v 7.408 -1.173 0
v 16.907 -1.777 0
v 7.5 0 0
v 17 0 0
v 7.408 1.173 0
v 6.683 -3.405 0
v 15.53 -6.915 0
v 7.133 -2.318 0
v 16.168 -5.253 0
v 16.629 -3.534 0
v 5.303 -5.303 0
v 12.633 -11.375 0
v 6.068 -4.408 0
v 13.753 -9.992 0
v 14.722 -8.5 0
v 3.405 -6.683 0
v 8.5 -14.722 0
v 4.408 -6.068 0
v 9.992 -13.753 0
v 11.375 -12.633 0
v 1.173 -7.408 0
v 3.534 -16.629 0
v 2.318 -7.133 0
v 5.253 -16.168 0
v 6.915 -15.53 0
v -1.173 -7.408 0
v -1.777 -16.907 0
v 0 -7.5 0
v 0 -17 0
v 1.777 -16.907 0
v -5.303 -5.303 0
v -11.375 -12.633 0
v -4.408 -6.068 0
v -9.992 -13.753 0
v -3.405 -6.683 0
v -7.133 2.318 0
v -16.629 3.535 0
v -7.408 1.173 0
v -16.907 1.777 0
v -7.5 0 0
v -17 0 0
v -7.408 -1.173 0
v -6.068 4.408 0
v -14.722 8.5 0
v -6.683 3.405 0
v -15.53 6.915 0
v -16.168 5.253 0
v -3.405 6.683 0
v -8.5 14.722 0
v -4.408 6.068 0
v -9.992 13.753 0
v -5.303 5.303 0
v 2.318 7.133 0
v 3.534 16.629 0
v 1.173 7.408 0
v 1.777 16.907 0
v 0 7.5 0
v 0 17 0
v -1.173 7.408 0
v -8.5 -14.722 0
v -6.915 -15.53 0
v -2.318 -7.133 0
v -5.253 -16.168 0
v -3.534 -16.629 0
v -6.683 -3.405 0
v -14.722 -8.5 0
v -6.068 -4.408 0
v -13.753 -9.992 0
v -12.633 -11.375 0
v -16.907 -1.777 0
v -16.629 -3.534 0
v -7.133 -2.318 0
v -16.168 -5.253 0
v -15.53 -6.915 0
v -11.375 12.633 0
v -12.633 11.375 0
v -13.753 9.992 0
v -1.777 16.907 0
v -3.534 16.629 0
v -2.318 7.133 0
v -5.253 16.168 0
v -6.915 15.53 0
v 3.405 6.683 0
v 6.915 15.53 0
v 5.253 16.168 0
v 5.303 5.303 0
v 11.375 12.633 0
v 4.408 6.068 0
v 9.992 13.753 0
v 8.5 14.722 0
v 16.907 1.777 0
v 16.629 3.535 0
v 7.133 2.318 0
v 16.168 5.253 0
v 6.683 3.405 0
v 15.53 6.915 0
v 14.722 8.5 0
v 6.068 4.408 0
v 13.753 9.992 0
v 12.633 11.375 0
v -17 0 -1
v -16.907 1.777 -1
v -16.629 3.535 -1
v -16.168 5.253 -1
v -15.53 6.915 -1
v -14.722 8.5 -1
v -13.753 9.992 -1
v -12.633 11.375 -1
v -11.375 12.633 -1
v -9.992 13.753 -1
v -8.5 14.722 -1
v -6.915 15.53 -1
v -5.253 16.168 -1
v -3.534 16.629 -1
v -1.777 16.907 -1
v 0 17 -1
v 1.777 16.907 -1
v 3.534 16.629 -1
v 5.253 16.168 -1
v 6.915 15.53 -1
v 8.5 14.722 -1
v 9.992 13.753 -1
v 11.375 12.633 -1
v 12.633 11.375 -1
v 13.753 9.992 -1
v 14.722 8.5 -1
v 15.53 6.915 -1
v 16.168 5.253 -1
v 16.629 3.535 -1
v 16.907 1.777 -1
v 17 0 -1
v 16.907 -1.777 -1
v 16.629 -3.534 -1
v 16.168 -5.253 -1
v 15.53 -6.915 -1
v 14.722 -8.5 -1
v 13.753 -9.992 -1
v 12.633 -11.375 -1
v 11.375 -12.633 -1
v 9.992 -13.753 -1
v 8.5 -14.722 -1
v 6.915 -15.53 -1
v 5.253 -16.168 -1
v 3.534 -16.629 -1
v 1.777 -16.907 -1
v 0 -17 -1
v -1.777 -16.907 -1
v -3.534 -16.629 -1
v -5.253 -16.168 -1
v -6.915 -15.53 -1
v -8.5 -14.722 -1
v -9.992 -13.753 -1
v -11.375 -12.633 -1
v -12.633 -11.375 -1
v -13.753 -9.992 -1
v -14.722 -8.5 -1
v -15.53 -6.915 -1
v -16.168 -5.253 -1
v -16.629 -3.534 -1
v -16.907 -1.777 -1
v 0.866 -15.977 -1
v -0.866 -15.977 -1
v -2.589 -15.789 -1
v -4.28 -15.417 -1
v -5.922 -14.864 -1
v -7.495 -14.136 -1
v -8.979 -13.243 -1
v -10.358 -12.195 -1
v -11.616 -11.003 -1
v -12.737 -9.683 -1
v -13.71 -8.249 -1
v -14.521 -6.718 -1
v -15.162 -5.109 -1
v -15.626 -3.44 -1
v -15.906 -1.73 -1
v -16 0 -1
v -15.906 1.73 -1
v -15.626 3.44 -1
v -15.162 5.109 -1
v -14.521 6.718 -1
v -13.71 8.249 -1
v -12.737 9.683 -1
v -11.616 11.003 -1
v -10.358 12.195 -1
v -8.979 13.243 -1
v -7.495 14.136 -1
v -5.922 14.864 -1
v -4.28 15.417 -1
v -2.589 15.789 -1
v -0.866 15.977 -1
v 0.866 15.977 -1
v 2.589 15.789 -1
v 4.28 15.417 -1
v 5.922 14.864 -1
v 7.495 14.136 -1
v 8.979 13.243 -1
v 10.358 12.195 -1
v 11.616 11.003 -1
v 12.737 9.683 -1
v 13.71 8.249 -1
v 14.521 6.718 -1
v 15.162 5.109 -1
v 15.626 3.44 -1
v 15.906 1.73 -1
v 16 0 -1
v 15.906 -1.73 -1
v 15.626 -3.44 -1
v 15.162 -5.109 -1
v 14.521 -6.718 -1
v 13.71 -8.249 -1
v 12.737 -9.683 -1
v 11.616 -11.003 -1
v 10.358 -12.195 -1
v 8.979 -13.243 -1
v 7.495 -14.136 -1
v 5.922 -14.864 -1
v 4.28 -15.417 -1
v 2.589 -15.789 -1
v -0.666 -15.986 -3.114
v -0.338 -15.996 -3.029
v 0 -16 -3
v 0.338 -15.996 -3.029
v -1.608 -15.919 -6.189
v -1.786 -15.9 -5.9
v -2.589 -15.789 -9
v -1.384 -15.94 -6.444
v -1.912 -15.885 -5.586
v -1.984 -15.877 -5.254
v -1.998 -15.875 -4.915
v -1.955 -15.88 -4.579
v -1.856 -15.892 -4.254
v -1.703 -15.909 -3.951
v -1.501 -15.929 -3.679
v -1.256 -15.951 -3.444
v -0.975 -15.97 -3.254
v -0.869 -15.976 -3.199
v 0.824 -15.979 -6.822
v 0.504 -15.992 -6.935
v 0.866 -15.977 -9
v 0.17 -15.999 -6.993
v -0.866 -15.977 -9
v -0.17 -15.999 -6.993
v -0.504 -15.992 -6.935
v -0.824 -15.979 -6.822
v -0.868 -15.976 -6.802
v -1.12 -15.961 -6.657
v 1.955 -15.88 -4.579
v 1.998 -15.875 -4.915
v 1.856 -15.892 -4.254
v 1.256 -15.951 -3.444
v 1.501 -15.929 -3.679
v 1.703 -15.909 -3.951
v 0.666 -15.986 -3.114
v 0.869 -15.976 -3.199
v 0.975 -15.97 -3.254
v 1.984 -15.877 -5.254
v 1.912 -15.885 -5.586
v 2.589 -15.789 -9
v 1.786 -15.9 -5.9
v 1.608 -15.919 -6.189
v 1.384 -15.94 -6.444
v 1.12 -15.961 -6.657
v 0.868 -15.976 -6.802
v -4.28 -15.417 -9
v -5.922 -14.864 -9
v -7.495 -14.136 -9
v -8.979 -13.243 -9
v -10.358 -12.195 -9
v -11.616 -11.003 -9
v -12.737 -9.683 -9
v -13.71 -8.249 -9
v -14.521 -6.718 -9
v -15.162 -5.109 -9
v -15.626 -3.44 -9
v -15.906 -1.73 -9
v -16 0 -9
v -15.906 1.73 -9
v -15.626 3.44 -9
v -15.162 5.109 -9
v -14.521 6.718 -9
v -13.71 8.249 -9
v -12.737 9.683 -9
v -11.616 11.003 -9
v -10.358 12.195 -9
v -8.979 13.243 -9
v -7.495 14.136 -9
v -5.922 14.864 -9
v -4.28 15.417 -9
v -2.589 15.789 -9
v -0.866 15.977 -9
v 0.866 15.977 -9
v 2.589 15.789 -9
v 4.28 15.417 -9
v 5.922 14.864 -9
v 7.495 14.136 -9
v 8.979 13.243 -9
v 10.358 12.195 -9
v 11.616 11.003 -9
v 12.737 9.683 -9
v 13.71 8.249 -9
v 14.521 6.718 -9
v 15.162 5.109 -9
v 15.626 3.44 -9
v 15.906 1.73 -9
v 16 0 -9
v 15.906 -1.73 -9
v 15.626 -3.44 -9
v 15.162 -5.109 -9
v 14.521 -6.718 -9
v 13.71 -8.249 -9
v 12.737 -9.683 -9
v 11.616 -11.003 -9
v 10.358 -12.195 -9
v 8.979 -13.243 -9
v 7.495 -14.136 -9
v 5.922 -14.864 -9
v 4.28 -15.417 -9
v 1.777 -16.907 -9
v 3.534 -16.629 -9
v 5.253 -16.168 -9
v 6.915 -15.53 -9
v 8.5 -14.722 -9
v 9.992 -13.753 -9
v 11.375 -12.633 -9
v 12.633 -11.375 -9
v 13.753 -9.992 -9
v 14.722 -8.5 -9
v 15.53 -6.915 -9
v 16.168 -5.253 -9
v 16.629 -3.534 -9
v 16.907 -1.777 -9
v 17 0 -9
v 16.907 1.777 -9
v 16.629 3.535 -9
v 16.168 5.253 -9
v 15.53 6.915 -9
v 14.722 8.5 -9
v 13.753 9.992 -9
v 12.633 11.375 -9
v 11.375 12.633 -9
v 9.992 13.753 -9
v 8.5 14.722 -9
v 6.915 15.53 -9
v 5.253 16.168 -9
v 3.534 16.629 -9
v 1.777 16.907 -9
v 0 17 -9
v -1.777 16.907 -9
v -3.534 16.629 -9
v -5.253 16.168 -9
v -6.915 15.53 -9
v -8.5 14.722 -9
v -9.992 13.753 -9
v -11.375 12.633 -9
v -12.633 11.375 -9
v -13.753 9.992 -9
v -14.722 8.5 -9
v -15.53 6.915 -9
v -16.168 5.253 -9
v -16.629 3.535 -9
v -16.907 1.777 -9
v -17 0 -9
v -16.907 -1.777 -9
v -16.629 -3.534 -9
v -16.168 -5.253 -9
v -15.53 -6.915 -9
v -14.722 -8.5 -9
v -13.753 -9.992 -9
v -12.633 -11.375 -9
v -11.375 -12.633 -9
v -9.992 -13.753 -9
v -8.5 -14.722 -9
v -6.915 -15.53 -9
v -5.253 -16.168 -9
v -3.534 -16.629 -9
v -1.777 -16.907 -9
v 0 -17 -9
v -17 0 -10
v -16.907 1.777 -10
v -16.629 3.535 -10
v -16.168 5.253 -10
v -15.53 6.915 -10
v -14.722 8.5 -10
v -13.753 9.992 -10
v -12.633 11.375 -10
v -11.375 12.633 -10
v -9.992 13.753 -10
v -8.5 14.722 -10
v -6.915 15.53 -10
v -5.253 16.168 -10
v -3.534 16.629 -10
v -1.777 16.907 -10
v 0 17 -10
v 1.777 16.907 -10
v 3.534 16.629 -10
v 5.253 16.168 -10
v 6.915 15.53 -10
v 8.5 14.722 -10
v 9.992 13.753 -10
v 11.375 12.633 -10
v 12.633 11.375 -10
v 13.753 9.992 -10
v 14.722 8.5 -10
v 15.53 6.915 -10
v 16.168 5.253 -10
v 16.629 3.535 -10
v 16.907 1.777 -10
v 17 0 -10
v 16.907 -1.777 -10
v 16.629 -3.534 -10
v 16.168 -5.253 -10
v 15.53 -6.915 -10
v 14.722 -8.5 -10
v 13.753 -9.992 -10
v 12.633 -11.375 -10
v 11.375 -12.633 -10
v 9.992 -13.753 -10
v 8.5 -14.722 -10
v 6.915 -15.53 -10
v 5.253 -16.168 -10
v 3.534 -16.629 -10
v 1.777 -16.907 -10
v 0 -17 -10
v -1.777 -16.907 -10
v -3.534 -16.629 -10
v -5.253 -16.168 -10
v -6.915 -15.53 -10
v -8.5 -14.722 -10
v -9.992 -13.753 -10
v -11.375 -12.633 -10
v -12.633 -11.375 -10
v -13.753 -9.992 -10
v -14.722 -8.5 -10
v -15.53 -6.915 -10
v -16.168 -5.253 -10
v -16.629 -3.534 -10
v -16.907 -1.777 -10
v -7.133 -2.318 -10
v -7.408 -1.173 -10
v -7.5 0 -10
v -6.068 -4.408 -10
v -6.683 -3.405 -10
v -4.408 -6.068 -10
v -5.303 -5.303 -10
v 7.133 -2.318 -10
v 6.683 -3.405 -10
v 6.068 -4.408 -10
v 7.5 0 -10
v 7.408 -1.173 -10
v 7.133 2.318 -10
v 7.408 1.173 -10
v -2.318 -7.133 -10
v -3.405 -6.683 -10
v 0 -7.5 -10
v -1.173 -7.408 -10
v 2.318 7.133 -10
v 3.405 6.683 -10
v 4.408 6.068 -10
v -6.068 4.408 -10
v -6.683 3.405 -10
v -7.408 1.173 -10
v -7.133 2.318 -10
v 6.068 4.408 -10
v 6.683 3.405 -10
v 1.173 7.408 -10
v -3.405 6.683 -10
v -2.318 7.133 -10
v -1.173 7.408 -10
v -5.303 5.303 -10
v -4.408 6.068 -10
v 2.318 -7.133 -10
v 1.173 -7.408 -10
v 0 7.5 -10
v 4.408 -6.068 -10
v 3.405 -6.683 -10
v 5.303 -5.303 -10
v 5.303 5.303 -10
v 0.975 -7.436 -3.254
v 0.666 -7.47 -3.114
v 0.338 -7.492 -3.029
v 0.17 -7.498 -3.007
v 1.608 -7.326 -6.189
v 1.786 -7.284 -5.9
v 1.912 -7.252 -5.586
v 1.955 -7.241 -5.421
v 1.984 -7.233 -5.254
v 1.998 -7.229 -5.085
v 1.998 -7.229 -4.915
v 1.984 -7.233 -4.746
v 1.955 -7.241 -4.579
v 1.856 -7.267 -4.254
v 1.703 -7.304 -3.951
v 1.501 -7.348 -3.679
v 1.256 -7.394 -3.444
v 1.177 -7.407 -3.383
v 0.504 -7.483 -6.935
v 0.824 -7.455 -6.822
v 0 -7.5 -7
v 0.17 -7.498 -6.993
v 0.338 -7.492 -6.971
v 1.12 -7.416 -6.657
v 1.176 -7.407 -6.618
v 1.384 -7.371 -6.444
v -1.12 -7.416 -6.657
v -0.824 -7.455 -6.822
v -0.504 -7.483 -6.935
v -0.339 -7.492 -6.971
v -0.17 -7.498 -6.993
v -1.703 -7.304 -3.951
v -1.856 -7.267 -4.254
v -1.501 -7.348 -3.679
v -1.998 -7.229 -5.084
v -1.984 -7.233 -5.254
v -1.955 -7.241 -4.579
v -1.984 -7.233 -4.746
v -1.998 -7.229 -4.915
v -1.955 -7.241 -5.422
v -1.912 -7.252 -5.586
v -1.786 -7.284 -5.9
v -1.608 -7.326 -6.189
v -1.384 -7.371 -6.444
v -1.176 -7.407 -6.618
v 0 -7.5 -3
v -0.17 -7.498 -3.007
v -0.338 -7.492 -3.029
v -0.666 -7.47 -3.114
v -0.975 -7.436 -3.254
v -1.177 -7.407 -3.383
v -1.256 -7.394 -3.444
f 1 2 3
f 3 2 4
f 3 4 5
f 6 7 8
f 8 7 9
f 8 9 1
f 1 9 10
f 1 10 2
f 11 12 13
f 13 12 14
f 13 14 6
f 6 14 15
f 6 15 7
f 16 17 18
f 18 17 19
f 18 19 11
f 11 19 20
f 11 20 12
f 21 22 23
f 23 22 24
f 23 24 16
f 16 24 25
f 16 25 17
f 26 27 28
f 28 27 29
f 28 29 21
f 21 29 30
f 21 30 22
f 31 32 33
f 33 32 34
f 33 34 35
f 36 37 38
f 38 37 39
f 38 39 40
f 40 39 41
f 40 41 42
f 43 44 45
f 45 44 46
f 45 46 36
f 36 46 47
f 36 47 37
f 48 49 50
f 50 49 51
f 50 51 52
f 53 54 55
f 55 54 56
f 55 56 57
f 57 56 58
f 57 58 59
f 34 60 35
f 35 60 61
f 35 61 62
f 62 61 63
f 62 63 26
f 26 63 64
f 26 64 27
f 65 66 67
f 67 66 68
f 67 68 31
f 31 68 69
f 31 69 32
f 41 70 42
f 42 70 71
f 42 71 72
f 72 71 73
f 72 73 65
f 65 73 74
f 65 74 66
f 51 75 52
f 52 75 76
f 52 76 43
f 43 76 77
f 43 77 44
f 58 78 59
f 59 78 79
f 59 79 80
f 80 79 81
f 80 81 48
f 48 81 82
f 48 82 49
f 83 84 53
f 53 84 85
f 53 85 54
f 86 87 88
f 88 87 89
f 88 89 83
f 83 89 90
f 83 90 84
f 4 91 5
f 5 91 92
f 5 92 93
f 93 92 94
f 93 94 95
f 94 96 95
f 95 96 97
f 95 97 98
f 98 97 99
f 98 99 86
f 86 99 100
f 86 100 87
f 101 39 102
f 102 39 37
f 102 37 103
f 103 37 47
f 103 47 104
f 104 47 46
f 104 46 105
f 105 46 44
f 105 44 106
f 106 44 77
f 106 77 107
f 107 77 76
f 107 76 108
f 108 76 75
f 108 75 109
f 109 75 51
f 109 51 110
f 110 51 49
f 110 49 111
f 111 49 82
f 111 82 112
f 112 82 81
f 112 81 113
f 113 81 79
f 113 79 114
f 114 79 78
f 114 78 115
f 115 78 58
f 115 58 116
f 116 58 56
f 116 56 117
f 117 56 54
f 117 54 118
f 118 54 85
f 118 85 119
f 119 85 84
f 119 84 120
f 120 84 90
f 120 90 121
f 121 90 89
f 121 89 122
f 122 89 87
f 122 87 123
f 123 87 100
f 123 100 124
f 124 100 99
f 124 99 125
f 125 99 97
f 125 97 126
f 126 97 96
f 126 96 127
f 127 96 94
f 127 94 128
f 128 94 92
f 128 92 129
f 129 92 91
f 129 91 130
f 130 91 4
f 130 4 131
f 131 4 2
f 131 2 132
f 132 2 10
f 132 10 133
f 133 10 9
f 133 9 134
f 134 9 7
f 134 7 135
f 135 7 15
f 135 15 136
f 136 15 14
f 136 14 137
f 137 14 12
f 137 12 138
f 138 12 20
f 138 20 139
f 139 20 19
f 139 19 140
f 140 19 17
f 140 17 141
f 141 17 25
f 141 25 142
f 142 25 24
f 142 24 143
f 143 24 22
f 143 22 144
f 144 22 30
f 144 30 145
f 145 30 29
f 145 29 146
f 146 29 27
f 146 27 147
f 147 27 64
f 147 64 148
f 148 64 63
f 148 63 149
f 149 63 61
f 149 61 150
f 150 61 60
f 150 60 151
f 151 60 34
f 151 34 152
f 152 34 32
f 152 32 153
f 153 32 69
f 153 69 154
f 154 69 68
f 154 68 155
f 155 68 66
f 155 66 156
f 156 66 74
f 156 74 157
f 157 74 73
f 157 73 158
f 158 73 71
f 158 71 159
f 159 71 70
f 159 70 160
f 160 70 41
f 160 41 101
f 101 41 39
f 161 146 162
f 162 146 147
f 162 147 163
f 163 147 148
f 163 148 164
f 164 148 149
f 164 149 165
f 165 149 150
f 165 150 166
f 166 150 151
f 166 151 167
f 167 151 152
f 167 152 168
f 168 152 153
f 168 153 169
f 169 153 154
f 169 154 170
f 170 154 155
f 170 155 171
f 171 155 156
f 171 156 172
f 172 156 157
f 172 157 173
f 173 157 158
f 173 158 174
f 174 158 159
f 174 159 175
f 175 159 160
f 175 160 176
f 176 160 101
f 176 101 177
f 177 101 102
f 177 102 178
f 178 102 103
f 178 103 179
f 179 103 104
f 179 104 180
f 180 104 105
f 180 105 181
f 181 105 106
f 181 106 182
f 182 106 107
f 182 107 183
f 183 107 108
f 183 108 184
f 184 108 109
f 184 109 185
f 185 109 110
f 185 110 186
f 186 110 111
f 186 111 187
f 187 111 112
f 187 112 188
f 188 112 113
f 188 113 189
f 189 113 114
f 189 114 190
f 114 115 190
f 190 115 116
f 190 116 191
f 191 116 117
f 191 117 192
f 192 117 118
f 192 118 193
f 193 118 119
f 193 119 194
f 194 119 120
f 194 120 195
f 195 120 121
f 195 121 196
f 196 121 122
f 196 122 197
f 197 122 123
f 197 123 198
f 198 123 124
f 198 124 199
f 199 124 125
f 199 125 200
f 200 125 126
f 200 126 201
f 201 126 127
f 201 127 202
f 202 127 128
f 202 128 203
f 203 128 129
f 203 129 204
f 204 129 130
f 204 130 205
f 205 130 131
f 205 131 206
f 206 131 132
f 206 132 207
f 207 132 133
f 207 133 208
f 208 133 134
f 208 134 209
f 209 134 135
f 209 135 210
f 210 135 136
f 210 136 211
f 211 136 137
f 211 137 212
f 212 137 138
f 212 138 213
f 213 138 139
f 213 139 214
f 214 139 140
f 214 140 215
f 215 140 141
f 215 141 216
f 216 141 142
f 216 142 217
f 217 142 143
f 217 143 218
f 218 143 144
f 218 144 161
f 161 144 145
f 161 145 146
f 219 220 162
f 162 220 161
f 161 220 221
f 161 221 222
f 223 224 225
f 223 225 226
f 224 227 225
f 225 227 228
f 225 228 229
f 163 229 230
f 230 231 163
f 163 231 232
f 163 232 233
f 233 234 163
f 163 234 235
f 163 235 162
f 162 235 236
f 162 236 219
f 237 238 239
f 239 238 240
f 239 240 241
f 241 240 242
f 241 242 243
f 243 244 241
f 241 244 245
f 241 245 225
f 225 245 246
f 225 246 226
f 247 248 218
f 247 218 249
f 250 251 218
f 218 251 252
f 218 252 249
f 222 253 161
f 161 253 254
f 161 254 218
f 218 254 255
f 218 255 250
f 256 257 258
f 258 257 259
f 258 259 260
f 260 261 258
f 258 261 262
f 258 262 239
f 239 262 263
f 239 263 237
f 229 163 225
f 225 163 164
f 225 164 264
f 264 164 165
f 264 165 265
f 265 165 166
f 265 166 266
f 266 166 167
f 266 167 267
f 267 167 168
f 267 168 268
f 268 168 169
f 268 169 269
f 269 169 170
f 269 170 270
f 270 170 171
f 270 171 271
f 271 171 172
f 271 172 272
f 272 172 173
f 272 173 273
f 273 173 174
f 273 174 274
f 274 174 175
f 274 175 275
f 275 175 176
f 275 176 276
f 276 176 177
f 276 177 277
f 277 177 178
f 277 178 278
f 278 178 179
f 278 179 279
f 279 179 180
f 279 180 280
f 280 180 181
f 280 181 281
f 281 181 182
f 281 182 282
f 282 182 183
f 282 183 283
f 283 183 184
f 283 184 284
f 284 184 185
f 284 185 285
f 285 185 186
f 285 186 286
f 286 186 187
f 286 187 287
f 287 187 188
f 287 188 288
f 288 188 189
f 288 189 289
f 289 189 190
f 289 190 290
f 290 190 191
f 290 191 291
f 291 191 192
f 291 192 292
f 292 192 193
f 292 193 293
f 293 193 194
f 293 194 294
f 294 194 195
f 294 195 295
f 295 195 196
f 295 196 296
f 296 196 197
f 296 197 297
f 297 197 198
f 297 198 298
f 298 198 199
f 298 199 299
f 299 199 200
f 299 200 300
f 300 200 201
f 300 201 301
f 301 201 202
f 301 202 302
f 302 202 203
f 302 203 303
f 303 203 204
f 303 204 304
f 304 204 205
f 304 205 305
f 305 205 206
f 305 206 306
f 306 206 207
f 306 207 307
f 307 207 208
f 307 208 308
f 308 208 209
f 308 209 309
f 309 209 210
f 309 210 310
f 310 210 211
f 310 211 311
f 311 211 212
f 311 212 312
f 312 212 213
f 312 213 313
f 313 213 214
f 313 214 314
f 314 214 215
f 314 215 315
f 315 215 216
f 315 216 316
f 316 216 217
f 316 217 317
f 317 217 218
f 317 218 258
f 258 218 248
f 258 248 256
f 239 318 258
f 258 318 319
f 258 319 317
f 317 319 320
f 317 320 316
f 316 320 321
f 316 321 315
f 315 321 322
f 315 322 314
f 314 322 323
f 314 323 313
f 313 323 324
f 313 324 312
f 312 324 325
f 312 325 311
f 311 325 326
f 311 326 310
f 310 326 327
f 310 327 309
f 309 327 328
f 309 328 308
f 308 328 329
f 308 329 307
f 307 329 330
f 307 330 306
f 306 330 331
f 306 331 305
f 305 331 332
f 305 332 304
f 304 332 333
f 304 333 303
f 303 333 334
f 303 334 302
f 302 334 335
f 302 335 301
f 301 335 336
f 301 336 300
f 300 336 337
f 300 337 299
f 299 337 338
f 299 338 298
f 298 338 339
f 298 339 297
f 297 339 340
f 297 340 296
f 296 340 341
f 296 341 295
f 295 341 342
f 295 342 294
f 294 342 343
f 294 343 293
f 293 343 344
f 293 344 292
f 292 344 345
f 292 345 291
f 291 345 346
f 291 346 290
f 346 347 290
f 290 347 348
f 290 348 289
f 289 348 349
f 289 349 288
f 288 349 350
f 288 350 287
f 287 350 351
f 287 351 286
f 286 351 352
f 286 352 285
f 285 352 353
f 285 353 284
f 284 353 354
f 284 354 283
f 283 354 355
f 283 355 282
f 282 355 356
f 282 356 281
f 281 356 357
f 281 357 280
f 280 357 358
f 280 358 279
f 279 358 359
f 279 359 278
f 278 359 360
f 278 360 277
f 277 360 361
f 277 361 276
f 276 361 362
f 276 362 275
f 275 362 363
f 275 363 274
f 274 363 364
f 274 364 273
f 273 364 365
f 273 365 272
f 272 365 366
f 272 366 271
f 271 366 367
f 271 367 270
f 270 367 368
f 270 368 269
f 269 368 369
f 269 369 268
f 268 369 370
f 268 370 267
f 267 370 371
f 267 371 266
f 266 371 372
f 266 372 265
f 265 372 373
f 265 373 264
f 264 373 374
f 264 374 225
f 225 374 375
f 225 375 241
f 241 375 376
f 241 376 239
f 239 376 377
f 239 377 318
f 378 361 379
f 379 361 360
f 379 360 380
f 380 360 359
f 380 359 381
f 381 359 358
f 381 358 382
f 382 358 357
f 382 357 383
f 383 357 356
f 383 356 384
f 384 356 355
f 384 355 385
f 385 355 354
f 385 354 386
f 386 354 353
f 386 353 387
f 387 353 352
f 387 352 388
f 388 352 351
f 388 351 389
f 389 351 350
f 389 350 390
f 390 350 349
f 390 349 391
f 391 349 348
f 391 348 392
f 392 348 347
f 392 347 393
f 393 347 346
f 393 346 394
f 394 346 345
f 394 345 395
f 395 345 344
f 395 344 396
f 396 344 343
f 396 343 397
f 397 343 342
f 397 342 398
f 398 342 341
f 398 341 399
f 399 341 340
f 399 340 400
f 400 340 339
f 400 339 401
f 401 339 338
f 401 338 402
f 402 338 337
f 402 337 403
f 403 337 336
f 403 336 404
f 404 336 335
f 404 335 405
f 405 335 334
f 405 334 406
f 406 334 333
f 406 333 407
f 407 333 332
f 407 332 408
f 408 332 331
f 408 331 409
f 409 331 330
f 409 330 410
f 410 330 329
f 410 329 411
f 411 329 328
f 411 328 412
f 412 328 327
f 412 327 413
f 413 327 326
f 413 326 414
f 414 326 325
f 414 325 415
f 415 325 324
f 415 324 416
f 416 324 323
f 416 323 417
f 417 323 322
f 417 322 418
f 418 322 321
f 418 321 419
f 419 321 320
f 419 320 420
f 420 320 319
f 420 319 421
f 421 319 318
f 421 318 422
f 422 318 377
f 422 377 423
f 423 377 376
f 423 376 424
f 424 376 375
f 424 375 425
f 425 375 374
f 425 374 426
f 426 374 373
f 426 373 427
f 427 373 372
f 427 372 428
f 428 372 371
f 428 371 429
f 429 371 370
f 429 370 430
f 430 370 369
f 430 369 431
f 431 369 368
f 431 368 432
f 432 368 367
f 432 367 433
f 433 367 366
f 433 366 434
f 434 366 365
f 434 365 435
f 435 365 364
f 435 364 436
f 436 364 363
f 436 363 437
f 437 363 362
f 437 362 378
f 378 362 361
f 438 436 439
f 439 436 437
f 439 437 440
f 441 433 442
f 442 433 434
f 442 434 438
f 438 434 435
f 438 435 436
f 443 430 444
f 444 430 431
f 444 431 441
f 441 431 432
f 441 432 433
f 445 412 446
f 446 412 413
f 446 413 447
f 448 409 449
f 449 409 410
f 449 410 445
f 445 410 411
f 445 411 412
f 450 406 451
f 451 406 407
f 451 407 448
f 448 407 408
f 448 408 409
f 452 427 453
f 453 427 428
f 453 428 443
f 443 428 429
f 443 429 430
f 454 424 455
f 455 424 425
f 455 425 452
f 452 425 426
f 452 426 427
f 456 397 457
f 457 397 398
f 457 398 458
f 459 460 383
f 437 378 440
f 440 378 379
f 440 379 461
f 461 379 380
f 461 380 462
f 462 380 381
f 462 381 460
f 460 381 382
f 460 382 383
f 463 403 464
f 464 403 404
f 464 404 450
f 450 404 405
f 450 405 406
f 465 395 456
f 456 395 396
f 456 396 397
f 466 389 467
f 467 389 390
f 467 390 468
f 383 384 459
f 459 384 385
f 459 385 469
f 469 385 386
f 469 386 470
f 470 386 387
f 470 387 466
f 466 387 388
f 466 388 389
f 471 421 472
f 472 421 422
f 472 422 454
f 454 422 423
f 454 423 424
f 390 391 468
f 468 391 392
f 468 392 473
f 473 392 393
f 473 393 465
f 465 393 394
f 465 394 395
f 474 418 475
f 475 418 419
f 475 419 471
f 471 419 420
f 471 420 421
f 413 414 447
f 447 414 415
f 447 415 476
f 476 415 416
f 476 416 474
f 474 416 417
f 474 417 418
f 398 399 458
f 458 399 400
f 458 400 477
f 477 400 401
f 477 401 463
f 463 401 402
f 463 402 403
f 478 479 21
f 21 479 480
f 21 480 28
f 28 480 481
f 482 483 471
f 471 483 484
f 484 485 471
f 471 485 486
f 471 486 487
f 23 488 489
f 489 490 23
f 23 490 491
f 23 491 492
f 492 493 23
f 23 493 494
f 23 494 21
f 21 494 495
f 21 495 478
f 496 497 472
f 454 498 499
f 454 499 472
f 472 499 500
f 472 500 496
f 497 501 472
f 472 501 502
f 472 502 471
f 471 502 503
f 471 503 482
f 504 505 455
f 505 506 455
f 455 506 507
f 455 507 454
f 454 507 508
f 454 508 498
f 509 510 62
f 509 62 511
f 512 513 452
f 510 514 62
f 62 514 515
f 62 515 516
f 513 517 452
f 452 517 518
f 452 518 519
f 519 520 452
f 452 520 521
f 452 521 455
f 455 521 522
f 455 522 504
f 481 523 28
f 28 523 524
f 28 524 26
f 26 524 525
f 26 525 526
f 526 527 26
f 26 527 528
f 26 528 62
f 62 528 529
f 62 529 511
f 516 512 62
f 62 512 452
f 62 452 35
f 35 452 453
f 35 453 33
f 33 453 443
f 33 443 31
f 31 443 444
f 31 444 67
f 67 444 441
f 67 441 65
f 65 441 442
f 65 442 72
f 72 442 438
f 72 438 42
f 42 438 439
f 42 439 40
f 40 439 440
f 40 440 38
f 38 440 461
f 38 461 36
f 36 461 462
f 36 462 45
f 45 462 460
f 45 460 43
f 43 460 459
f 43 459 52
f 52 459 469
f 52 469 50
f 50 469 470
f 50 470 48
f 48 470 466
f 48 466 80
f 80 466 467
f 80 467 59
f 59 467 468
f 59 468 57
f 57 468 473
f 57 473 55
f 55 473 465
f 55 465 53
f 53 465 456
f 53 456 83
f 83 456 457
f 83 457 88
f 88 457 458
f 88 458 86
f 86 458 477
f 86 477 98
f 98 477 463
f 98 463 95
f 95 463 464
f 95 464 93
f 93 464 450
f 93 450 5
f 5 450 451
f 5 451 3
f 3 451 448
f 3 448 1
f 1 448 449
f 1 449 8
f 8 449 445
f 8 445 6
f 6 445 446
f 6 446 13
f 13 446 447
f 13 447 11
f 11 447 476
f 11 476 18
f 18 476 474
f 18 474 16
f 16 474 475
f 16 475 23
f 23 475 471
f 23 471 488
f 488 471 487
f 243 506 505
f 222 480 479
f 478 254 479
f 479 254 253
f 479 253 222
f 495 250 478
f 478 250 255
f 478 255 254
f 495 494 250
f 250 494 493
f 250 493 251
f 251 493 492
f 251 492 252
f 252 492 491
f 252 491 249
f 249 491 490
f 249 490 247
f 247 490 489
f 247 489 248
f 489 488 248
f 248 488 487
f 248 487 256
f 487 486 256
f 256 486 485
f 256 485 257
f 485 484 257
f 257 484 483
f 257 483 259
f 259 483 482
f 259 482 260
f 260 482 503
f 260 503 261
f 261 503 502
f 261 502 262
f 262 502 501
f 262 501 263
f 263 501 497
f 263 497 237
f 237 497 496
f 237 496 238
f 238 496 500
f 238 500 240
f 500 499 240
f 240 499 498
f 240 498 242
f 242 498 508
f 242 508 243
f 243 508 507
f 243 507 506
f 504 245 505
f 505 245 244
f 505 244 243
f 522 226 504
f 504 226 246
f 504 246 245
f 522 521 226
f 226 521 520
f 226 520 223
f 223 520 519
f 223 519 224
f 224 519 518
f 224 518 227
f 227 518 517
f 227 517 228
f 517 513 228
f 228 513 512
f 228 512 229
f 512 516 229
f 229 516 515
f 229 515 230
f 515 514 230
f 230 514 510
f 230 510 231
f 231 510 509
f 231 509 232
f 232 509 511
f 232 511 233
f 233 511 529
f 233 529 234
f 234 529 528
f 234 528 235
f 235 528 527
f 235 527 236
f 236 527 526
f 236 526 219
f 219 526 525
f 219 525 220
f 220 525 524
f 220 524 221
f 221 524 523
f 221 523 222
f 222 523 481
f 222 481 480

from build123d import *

# Parameters (mm, degrees)
SKETCH2_R          = 7.5
CUT_EXTRUDE1_DEPTH = 27.038433133
SKETCH3_R          = 2
CUT_EXTRUDE2_DEPTH = 27


with BuildPart() as part:
    # Sketch1 → Revolve1 (revolve)
    with BuildSketch(Plane(origin=(0, 0, 0), x_dir=(1, 0, 0), z_dir=(0, 1, 0)), mode=Mode.PRIVATE) as revolve1_sk:
        Polygon((0, 0), (17, 0), (17, 1), (16, 1), (16, 9), (17, 9), (17, 10), (0, 10), align=None)
    revolve(revolve1_sk.sketch.rotate(Axis((0, 0, -10), (0, 0, 1)), 180), axis=Axis((0, 0, -10), (0, 0, 1)))

    # Sketch2 → Cut-Extrude1 (cut, through all)
    with BuildSketch(Plane(origin=(0, 0, -10), x_dir=(-1, 0, 0), z_dir=(0, 0, -1))):
        Circle(SKETCH2_R)
    extrude(amount=-CUT_EXTRUDE1_DEPTH, mode=Mode.SUBTRACT)

    # Sketch3 → Cut-Extrude2 (cut)
    with BuildSketch(Plane(origin=(0, 0, 0), x_dir=(1, 0, 0), z_dir=(0, 1, 0))):
        with Locations(Location((0, 5, 0), (0, 0, 270))):
            Circle(SKETCH3_R)
    extrude(amount=-CUT_EXTRUDE2_DEPTH, mode=Mode.SUBTRACT)


solid = part.part
